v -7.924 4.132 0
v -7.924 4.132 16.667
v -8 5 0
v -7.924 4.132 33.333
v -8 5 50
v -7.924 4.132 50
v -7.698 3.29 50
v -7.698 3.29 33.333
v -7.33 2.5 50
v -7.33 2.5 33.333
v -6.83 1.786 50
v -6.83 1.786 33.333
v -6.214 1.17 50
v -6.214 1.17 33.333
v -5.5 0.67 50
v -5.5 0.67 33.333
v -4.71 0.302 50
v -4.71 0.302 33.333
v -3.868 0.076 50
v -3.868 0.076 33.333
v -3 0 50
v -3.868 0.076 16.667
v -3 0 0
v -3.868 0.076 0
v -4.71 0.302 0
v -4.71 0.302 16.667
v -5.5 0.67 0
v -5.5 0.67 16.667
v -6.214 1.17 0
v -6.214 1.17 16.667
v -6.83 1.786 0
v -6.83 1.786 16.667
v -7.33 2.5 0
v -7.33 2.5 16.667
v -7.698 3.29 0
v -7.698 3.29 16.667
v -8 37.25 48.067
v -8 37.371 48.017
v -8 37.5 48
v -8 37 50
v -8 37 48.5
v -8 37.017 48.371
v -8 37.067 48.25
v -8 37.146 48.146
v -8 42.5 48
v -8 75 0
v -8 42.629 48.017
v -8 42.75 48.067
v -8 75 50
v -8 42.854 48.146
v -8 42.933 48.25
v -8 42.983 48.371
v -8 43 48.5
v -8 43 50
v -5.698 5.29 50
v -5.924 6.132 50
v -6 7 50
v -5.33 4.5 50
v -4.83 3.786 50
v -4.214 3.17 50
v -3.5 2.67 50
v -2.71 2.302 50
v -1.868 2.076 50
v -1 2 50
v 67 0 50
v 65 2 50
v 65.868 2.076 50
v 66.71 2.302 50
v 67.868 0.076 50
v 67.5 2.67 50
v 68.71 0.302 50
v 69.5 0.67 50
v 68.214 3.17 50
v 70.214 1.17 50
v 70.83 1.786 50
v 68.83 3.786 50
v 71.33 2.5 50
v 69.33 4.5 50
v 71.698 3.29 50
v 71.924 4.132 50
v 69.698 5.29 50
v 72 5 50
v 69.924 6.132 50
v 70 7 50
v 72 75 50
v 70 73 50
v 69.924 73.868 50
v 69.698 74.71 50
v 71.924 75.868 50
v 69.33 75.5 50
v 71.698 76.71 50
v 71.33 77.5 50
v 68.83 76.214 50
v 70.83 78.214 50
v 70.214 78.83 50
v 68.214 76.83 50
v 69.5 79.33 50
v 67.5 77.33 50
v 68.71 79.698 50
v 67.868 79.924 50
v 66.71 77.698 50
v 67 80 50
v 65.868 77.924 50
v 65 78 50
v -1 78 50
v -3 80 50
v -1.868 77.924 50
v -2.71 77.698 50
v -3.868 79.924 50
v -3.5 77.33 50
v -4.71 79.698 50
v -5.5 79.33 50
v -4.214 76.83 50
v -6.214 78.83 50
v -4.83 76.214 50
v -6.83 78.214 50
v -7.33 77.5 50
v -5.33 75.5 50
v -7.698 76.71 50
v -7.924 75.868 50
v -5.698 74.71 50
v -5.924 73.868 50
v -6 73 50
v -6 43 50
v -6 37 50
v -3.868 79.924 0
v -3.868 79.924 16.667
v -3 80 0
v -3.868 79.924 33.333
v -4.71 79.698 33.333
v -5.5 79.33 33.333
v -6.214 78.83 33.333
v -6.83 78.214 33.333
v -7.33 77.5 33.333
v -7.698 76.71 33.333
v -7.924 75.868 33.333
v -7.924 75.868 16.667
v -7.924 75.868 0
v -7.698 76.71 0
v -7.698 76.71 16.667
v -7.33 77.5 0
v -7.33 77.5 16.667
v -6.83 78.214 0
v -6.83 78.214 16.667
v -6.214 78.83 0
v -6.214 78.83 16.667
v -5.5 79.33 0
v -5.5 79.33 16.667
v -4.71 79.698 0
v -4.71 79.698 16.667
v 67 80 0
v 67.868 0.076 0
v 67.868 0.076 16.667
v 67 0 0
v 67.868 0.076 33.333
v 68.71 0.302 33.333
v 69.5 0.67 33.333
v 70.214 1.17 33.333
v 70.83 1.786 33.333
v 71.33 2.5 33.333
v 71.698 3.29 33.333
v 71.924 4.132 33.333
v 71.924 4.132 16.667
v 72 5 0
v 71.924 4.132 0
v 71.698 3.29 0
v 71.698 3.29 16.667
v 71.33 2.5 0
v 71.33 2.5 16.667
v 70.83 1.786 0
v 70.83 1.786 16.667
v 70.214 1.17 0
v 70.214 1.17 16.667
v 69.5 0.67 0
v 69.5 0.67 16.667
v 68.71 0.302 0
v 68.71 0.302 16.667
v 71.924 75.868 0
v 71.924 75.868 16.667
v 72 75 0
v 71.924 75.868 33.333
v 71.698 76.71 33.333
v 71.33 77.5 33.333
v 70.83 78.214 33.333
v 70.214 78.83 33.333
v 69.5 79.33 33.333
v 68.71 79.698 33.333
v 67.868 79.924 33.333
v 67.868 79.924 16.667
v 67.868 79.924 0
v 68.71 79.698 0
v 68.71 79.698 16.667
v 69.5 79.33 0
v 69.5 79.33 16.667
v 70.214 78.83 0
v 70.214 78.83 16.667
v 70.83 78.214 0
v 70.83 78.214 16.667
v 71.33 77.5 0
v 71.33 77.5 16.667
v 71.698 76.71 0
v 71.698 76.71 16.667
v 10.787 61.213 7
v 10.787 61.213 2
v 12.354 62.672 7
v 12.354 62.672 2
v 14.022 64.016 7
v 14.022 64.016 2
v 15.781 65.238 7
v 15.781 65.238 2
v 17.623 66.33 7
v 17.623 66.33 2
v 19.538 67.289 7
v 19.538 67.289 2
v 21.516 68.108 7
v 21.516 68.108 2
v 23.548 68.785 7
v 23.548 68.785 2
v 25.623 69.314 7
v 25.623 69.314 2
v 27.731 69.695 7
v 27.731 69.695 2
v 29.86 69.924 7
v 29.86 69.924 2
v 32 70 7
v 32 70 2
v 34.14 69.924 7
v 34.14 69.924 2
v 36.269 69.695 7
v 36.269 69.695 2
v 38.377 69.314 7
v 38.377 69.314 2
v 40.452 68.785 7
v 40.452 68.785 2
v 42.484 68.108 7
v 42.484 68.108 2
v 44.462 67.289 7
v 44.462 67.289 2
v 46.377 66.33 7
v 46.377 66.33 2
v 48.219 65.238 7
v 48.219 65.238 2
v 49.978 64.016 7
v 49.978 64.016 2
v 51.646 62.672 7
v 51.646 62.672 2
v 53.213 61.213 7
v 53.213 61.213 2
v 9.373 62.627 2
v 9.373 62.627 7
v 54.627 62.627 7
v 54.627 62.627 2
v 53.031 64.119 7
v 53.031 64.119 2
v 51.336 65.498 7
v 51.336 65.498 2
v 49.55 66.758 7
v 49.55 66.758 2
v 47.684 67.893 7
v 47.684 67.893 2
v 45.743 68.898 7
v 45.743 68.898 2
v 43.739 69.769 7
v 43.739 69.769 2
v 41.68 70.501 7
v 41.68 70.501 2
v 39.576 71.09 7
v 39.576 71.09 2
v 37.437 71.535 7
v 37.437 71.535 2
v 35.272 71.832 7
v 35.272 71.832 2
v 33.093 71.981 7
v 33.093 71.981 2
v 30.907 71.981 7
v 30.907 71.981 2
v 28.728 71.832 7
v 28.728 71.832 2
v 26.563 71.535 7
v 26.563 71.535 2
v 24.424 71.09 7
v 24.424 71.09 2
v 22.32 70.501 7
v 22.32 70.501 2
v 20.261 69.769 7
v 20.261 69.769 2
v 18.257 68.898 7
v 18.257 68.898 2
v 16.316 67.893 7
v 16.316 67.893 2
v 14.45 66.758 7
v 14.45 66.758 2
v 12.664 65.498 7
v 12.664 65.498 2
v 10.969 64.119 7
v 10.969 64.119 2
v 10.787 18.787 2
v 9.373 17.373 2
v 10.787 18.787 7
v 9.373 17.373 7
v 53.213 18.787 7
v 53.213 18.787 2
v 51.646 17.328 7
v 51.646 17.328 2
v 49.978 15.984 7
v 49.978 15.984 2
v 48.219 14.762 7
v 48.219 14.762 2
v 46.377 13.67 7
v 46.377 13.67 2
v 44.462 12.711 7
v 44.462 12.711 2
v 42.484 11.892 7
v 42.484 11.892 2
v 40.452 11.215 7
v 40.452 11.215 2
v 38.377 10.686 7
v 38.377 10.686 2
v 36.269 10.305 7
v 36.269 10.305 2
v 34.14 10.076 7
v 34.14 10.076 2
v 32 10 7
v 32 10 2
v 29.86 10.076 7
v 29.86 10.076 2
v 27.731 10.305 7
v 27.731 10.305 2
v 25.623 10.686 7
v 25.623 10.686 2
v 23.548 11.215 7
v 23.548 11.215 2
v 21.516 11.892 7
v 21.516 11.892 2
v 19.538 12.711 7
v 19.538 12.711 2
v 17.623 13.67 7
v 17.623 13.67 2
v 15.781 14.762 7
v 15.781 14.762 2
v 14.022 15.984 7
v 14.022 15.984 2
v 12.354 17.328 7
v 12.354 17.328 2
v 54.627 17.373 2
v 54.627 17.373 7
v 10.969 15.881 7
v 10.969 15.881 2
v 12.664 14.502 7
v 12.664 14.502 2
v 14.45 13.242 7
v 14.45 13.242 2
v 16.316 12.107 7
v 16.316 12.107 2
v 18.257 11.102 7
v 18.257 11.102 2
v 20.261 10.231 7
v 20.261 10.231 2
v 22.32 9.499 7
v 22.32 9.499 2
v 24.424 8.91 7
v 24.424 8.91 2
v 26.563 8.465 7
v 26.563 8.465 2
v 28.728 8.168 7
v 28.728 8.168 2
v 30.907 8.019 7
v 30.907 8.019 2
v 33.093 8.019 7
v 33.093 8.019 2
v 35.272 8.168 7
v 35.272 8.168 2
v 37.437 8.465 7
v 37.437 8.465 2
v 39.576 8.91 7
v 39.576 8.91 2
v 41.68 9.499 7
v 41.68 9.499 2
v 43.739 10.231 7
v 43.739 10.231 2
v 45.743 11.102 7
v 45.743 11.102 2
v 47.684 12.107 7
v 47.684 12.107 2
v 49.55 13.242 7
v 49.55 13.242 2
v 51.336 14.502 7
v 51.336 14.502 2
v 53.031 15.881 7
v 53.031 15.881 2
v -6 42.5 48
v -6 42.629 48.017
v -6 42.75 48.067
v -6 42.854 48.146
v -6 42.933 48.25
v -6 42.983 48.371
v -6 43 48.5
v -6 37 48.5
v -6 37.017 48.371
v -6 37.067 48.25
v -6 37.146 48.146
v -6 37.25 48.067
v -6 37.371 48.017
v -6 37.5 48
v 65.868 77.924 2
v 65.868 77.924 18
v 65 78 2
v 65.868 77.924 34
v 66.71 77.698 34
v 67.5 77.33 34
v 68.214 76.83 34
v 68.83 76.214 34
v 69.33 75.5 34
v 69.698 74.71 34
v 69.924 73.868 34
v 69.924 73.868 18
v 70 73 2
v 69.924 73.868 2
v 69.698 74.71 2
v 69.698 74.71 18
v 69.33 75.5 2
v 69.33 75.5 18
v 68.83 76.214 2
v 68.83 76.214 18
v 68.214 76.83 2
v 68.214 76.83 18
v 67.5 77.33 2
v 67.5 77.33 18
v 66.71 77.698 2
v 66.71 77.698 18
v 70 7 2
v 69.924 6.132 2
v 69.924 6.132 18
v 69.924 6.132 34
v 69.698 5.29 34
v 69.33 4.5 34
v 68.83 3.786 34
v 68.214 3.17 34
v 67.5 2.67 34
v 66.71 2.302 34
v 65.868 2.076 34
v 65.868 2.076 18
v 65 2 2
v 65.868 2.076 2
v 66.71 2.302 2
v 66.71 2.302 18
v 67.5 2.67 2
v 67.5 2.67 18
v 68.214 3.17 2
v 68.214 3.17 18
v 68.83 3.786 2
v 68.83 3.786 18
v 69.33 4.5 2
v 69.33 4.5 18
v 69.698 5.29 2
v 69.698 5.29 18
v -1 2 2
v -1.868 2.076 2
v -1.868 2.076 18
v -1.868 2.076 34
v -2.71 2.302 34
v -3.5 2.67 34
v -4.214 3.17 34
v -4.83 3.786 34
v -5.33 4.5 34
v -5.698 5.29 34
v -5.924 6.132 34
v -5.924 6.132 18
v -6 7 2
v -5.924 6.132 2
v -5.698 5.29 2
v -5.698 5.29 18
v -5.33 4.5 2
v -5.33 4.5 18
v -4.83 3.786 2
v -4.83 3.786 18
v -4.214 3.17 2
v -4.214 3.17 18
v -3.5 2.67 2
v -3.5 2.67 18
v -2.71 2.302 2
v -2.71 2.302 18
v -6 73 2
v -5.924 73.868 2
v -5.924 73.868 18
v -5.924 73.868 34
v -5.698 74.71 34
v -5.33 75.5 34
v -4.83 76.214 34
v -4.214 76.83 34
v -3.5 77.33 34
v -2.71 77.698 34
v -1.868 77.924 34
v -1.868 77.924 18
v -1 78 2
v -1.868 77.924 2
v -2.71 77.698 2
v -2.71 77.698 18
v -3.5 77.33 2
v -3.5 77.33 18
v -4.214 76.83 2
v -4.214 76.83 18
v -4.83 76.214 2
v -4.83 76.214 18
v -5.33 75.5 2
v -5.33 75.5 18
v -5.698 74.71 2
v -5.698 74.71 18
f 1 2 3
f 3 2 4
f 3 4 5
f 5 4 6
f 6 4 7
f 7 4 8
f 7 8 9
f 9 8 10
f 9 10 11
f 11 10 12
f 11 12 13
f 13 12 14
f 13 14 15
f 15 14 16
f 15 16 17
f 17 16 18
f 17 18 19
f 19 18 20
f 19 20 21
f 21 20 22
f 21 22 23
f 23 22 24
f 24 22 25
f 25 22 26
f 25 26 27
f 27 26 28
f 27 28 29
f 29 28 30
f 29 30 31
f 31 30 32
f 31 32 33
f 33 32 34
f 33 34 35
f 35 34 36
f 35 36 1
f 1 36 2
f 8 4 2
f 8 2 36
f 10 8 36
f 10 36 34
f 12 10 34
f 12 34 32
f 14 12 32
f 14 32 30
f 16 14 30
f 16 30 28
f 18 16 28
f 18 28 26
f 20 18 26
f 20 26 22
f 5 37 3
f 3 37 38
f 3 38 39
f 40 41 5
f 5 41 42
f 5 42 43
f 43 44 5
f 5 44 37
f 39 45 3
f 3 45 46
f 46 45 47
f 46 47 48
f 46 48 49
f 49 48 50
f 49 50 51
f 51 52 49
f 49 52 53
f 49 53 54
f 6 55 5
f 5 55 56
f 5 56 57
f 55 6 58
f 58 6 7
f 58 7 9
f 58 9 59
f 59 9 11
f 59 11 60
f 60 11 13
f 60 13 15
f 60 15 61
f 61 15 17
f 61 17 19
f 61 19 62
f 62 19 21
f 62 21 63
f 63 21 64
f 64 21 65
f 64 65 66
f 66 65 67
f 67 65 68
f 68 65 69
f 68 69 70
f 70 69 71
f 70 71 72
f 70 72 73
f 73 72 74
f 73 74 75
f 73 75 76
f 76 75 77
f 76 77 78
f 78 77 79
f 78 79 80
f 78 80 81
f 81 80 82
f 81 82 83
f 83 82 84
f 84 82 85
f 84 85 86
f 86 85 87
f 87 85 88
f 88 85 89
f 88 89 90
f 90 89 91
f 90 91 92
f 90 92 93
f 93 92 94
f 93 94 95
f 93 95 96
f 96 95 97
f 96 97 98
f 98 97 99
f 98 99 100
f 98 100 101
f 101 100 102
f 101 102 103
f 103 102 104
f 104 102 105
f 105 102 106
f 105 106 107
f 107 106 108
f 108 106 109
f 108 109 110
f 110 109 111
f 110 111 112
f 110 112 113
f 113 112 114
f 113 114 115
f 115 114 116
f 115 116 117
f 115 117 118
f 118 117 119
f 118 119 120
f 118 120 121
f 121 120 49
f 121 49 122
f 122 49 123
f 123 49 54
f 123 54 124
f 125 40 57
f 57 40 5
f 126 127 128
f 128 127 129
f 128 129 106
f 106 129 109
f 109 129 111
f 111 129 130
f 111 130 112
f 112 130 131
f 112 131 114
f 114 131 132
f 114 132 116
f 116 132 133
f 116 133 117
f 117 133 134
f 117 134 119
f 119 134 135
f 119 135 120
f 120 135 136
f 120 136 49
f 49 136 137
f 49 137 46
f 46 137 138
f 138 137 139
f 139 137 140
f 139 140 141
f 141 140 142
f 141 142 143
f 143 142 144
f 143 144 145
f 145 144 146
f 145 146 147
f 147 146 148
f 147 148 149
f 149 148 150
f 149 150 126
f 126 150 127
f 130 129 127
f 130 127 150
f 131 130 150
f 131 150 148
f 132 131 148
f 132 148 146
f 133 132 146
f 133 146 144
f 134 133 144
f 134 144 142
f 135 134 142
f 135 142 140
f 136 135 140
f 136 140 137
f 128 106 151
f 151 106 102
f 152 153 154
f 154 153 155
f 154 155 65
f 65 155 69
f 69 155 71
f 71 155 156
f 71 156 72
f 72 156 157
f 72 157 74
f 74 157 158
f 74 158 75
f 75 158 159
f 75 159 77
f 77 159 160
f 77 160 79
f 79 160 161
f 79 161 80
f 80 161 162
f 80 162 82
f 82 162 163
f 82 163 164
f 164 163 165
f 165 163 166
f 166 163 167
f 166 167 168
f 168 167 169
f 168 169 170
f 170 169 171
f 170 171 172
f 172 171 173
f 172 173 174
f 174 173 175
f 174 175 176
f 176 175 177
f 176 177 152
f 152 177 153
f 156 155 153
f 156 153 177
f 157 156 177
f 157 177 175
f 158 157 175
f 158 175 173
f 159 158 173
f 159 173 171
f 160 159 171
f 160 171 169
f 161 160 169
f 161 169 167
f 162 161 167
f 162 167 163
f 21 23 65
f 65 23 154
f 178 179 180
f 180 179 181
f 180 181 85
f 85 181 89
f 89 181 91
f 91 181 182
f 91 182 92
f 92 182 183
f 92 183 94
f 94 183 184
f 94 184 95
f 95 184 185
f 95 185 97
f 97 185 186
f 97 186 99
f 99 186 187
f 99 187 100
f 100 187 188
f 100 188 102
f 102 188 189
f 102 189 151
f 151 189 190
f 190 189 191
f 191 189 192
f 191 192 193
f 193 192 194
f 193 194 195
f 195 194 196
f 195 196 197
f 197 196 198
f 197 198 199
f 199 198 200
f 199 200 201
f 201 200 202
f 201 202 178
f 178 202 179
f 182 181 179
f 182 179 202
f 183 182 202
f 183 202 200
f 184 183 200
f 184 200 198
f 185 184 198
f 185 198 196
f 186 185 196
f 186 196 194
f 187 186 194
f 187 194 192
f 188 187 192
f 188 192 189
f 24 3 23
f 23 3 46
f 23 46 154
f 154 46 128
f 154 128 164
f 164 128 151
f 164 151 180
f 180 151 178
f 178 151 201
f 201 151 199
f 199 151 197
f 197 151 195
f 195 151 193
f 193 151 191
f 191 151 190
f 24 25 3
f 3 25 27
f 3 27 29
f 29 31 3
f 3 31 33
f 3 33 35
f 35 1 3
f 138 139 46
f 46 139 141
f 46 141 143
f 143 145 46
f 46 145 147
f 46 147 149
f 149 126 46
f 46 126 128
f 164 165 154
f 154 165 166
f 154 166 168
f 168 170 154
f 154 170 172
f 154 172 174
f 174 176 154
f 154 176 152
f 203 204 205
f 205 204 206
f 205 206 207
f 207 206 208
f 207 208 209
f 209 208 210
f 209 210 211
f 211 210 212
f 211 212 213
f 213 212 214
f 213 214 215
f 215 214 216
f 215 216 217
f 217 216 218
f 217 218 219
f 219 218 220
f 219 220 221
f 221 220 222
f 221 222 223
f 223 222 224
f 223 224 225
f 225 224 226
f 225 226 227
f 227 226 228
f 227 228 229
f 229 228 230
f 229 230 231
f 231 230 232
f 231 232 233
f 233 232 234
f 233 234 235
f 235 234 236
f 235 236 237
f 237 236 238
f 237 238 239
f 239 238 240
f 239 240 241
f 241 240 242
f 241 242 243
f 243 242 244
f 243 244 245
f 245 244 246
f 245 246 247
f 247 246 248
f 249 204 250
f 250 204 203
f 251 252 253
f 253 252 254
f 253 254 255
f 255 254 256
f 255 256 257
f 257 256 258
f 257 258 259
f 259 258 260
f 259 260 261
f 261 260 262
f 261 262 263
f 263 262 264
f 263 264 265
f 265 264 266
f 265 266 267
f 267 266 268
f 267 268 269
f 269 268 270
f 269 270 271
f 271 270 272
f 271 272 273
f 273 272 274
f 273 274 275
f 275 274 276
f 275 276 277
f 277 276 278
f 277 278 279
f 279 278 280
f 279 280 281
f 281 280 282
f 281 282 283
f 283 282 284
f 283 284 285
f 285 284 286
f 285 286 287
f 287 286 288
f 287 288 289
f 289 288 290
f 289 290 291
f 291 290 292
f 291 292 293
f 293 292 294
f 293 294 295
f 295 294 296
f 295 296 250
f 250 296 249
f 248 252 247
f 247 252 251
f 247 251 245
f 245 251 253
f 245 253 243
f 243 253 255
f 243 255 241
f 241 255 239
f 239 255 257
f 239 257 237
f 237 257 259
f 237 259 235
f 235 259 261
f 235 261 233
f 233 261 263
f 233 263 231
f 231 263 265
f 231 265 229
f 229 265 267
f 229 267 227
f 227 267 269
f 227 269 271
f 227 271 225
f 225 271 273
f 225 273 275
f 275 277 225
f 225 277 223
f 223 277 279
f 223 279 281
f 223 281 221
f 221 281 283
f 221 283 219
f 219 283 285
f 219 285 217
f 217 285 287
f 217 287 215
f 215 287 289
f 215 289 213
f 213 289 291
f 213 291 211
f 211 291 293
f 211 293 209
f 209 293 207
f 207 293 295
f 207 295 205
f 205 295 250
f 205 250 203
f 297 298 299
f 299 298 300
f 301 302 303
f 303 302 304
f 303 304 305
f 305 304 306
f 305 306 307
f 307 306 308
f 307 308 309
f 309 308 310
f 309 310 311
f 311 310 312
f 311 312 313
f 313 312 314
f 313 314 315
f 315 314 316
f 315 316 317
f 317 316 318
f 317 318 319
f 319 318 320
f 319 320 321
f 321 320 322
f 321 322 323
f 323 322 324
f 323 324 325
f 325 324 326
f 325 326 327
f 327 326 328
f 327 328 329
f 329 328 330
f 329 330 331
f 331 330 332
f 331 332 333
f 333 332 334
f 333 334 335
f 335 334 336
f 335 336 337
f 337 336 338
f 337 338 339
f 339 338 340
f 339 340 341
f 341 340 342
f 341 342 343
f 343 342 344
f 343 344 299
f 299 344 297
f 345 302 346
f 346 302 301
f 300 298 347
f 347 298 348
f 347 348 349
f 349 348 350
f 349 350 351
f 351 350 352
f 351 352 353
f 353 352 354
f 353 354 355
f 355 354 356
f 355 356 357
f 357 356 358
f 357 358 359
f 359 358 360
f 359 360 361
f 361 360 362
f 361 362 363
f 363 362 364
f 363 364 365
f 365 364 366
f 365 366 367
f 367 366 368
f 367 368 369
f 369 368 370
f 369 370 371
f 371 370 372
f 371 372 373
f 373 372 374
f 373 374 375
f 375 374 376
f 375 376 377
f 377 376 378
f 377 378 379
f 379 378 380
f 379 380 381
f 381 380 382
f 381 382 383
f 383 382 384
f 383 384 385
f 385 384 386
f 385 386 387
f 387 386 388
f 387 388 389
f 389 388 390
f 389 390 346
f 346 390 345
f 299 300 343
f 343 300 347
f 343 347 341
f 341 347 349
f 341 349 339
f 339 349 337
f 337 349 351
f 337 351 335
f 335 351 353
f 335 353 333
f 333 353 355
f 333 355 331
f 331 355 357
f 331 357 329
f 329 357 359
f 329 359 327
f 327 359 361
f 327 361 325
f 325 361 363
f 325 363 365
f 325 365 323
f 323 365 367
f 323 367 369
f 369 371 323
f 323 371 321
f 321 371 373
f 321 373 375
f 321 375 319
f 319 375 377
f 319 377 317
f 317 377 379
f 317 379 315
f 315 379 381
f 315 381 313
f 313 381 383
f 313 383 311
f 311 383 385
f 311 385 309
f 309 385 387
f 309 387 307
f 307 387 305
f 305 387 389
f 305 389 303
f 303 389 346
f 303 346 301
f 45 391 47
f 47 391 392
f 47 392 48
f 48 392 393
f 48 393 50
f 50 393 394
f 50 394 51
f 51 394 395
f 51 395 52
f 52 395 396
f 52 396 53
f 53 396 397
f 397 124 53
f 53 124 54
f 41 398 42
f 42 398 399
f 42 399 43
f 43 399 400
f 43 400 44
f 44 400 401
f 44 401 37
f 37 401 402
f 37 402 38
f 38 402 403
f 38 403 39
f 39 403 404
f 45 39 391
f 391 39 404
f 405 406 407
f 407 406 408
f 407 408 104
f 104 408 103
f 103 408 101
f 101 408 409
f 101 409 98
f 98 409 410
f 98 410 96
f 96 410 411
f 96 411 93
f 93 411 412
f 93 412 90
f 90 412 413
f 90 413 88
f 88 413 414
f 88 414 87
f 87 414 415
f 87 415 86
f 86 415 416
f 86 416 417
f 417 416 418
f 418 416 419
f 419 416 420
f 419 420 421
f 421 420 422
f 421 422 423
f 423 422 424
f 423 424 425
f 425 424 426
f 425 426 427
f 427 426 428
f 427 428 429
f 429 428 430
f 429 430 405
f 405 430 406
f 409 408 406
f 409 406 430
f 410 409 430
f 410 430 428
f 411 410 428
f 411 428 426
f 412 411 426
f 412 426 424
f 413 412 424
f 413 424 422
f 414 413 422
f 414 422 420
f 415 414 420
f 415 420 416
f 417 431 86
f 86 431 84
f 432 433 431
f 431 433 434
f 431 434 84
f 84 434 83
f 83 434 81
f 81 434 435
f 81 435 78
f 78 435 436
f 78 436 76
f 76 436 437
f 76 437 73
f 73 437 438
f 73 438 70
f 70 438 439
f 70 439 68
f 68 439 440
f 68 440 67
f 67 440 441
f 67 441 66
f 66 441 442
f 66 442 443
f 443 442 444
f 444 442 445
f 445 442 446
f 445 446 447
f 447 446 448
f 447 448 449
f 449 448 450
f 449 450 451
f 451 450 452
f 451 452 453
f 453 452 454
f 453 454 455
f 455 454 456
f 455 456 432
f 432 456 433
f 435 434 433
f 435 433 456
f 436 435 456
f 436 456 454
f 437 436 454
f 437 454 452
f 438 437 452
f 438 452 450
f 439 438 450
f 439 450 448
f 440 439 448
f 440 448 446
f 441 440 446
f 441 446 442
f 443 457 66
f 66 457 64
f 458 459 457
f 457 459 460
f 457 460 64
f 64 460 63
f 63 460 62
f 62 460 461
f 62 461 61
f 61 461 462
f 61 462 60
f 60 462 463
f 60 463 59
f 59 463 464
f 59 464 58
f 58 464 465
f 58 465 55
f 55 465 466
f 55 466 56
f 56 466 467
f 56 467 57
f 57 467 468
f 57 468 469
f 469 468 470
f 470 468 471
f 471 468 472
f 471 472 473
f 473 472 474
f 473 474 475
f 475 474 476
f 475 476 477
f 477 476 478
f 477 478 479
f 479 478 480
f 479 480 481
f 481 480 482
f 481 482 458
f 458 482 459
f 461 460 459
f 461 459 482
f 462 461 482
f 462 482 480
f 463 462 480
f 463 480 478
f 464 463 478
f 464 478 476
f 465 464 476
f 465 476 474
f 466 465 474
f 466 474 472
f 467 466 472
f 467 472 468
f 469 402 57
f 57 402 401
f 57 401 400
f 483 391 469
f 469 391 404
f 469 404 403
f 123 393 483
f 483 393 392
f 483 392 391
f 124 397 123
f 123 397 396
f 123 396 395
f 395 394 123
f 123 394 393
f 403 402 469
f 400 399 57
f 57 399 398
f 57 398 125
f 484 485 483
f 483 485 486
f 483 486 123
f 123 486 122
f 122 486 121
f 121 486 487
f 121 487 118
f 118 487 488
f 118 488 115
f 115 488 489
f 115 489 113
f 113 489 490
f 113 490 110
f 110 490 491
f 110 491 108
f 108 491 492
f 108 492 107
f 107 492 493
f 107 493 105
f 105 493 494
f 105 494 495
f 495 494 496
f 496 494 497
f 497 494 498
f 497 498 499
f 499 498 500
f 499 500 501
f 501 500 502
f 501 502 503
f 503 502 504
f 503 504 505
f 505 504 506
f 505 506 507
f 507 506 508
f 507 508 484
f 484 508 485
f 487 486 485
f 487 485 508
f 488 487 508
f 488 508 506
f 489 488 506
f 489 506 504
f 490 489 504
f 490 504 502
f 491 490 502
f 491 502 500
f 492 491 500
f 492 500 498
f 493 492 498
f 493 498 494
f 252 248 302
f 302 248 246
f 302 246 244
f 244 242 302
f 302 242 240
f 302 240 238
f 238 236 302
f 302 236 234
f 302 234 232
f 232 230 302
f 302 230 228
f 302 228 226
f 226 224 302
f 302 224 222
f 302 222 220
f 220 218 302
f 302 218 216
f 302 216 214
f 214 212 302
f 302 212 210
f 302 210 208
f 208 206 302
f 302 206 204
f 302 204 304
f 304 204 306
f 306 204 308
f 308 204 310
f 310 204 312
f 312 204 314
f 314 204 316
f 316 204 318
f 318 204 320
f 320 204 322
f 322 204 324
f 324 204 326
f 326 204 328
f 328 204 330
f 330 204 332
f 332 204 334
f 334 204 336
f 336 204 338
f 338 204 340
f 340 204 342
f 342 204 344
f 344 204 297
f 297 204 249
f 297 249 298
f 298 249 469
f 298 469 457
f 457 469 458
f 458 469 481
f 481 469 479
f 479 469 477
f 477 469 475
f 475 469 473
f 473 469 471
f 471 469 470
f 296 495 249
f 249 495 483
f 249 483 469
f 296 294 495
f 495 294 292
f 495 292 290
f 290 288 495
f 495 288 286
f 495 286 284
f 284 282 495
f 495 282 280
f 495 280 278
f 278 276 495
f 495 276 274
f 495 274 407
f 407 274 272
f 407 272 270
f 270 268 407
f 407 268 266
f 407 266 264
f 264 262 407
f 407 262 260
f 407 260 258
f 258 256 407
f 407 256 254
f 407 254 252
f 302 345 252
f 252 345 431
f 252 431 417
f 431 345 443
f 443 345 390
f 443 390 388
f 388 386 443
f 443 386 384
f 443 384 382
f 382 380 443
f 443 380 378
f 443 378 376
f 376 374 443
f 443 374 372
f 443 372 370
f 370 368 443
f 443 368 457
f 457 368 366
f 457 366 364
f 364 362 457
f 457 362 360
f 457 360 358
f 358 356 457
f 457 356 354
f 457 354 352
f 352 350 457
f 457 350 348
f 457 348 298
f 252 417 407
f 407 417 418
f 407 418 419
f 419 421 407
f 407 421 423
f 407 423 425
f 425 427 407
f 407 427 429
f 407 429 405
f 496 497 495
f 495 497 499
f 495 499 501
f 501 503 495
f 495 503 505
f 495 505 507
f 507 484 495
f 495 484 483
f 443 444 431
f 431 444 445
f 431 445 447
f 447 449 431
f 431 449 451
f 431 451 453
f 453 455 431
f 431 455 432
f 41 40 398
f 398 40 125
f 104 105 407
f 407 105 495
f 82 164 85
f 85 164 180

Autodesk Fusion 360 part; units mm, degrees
sketch "Sketch1" plane through (0, 0, 0) normal (0, 0, 1) x (1, 0, 0)
box "BoxPrimitive1" add length 80 width 80 height 50 placed x (0, 1, 0) y (-1, 0, 0) z (0, 0, 1) at (72, 0, 0)
sketch "Sketch3" plane through (0, 0, 50) normal (0, 0, 1) x (-1, 0, 0)
  line L0 (-72, -80) -> (8, -80)
  line L1 (8, -80) -> (8, 0)
  line L2 (8, 0) -> (-72, 0)
  line L3 (-72, 0) -> (-72, -80)
  line L4 (8, 0) -> (-72, 0)
  line L5 (-72, 0) -> (-72, -80)
  line L6 (-72, -80) -> (8, -80)
  line L7 (8, -80) -> (8, 0)
  line L8 (8, 0) -> (-72, -80) construction
  line L9 (-72, 0) -> (8, -80) construction
  line L10 (6, -78) -> (-70, -78)
  line L11 (-70, -78) -> (-70, -2)
  line L12 (-70, -2) -> (6, -2)
  line L13 (6, -2) -> (6, -78)
  line L14 (6, -78) -> (-70, -2) construction
  line L15 (-70, -78) -> (6, -2) construction
  line L16 (-32, 0) -> (-32, -80)
  line L17 (8, -40) -> (-72, -40)
  point P0 (-32, -40)
  point P1 (-32, -40)
  dimension "d14" = 80
  dimension "d17" = 76
extrude "Extrude1" cut sketch "Sketch3" against normal blind 48 contours L10 L13 L16 L17 | L10 L11 L16 L17 | L11 L12 L16 L17 | L12 L13 L16 L17
sketch "Sketch4" plane through (0, 0, 0) normal (1, 0, 0) x (0, 1, 0)
  line L0 (0, 50) -> (80, 50)
  line L1 (43, 48) -> (37, 48)
  line L2 (37, 48) -> (37, 50)
  line L3 (43, 50) -> (43, 48)
  line L4 (43, 48) -> (40, 50) construction
  line L5 (37, 48) -> (40, 50) construction
extrude "Extrude2" cut sketch "Sketch4" against normal blind 10
fillet "Fillet1" radius 5 4 edges at (-6, 78, 26) (-6, 2, 26) (70, 2, 26) (70, 78, 26)
sketch "Sketch6" plane through (0, 0, 0) normal (0, -1, 0) x (1, 0, 0)
  line L0 (-8, 50) -> (-8, 0)
  line L1 (-8, 0) -> (72, 0)
  line L2 (72, 0) -> (72, 50)
  line L3 (72, 50) -> (-8, 50)
ref_plane "WorkPlane1" through (0, 40, 0) normal (0, -1, 0) x (1, 0, 0)
sketch "Sketch7" plane through (0, 40, 0) normal (0, -1, 0) x (-1, 0, 0)
fillet "Fillet2" radius 0.5 2 edges at (-7, 37, 48) (-7, 43, 48)
sketch "Sketch8" plane through (0, 0, 2) normal (0, 0, 1) x (-1, 0, 0)
  circle A0 centre (-32, -40) radius 30
  circle A1 centre (-32, -40) radius 32
  line L0 (-32, -40) -> (-32, -7)
  line L1 (-32, -40) -> (-32, -72)
  line L2 (-32, -40) -> (0, -40)
  line L3 (-32, -40) -> (-64, -40)
  line L4 (-32, -40) -> (-9.3726, -62.6274)
  line L5 (-32, -40) -> (-54.6505, -62.6505)
  line L6 (-32, -40) -> (-64.0327, -40) construction
  line L7 (-32, -40) -> (-9.3726, -17.3726)
  line L8 (-32, -40) -> (0, -40) construction
  line L9 (-32, -40) -> (-54.6274, -17.3726)
  line L10 (-32, -40) -> (-64, -40) construction
  arc A2 (-70, -73) -> (-65, -78) centre (-65, -73) ccw
  line L11 (-65, -78) -> (1, -78)
  arc A3 (1, -78) -> (6, -73) centre (1, -73) ccw
  line L12 (6, -73) -> (6, -7)
  arc A4 (6, -7) -> (1, -2) centre (1, -7) ccw
  line L13 (1, -2) -> (-65, -2)
  arc A5 (-65, -2) -> (-70, -7) centre (-65, -7) ccw
  line L14 (-70, -7) -> (-70, -73)
  dimension "d29" = 45
  dimension "d30" = 45
  dimension "d31" = 45
  dimension "d32" = 45
extrude "Extrude3" add sketch "Sketch8" along normal blind 5 contours A0 A1 L0 L7 | A0 A1 L1 L4 | A0 A1 L0 L9 | A0 A1 L1 L5
fillet "Fillet3" radius 5 4 edges at (72, 80, 25) (72, 0, 25) (-8, 80, 25) (-8, 0, 25)
